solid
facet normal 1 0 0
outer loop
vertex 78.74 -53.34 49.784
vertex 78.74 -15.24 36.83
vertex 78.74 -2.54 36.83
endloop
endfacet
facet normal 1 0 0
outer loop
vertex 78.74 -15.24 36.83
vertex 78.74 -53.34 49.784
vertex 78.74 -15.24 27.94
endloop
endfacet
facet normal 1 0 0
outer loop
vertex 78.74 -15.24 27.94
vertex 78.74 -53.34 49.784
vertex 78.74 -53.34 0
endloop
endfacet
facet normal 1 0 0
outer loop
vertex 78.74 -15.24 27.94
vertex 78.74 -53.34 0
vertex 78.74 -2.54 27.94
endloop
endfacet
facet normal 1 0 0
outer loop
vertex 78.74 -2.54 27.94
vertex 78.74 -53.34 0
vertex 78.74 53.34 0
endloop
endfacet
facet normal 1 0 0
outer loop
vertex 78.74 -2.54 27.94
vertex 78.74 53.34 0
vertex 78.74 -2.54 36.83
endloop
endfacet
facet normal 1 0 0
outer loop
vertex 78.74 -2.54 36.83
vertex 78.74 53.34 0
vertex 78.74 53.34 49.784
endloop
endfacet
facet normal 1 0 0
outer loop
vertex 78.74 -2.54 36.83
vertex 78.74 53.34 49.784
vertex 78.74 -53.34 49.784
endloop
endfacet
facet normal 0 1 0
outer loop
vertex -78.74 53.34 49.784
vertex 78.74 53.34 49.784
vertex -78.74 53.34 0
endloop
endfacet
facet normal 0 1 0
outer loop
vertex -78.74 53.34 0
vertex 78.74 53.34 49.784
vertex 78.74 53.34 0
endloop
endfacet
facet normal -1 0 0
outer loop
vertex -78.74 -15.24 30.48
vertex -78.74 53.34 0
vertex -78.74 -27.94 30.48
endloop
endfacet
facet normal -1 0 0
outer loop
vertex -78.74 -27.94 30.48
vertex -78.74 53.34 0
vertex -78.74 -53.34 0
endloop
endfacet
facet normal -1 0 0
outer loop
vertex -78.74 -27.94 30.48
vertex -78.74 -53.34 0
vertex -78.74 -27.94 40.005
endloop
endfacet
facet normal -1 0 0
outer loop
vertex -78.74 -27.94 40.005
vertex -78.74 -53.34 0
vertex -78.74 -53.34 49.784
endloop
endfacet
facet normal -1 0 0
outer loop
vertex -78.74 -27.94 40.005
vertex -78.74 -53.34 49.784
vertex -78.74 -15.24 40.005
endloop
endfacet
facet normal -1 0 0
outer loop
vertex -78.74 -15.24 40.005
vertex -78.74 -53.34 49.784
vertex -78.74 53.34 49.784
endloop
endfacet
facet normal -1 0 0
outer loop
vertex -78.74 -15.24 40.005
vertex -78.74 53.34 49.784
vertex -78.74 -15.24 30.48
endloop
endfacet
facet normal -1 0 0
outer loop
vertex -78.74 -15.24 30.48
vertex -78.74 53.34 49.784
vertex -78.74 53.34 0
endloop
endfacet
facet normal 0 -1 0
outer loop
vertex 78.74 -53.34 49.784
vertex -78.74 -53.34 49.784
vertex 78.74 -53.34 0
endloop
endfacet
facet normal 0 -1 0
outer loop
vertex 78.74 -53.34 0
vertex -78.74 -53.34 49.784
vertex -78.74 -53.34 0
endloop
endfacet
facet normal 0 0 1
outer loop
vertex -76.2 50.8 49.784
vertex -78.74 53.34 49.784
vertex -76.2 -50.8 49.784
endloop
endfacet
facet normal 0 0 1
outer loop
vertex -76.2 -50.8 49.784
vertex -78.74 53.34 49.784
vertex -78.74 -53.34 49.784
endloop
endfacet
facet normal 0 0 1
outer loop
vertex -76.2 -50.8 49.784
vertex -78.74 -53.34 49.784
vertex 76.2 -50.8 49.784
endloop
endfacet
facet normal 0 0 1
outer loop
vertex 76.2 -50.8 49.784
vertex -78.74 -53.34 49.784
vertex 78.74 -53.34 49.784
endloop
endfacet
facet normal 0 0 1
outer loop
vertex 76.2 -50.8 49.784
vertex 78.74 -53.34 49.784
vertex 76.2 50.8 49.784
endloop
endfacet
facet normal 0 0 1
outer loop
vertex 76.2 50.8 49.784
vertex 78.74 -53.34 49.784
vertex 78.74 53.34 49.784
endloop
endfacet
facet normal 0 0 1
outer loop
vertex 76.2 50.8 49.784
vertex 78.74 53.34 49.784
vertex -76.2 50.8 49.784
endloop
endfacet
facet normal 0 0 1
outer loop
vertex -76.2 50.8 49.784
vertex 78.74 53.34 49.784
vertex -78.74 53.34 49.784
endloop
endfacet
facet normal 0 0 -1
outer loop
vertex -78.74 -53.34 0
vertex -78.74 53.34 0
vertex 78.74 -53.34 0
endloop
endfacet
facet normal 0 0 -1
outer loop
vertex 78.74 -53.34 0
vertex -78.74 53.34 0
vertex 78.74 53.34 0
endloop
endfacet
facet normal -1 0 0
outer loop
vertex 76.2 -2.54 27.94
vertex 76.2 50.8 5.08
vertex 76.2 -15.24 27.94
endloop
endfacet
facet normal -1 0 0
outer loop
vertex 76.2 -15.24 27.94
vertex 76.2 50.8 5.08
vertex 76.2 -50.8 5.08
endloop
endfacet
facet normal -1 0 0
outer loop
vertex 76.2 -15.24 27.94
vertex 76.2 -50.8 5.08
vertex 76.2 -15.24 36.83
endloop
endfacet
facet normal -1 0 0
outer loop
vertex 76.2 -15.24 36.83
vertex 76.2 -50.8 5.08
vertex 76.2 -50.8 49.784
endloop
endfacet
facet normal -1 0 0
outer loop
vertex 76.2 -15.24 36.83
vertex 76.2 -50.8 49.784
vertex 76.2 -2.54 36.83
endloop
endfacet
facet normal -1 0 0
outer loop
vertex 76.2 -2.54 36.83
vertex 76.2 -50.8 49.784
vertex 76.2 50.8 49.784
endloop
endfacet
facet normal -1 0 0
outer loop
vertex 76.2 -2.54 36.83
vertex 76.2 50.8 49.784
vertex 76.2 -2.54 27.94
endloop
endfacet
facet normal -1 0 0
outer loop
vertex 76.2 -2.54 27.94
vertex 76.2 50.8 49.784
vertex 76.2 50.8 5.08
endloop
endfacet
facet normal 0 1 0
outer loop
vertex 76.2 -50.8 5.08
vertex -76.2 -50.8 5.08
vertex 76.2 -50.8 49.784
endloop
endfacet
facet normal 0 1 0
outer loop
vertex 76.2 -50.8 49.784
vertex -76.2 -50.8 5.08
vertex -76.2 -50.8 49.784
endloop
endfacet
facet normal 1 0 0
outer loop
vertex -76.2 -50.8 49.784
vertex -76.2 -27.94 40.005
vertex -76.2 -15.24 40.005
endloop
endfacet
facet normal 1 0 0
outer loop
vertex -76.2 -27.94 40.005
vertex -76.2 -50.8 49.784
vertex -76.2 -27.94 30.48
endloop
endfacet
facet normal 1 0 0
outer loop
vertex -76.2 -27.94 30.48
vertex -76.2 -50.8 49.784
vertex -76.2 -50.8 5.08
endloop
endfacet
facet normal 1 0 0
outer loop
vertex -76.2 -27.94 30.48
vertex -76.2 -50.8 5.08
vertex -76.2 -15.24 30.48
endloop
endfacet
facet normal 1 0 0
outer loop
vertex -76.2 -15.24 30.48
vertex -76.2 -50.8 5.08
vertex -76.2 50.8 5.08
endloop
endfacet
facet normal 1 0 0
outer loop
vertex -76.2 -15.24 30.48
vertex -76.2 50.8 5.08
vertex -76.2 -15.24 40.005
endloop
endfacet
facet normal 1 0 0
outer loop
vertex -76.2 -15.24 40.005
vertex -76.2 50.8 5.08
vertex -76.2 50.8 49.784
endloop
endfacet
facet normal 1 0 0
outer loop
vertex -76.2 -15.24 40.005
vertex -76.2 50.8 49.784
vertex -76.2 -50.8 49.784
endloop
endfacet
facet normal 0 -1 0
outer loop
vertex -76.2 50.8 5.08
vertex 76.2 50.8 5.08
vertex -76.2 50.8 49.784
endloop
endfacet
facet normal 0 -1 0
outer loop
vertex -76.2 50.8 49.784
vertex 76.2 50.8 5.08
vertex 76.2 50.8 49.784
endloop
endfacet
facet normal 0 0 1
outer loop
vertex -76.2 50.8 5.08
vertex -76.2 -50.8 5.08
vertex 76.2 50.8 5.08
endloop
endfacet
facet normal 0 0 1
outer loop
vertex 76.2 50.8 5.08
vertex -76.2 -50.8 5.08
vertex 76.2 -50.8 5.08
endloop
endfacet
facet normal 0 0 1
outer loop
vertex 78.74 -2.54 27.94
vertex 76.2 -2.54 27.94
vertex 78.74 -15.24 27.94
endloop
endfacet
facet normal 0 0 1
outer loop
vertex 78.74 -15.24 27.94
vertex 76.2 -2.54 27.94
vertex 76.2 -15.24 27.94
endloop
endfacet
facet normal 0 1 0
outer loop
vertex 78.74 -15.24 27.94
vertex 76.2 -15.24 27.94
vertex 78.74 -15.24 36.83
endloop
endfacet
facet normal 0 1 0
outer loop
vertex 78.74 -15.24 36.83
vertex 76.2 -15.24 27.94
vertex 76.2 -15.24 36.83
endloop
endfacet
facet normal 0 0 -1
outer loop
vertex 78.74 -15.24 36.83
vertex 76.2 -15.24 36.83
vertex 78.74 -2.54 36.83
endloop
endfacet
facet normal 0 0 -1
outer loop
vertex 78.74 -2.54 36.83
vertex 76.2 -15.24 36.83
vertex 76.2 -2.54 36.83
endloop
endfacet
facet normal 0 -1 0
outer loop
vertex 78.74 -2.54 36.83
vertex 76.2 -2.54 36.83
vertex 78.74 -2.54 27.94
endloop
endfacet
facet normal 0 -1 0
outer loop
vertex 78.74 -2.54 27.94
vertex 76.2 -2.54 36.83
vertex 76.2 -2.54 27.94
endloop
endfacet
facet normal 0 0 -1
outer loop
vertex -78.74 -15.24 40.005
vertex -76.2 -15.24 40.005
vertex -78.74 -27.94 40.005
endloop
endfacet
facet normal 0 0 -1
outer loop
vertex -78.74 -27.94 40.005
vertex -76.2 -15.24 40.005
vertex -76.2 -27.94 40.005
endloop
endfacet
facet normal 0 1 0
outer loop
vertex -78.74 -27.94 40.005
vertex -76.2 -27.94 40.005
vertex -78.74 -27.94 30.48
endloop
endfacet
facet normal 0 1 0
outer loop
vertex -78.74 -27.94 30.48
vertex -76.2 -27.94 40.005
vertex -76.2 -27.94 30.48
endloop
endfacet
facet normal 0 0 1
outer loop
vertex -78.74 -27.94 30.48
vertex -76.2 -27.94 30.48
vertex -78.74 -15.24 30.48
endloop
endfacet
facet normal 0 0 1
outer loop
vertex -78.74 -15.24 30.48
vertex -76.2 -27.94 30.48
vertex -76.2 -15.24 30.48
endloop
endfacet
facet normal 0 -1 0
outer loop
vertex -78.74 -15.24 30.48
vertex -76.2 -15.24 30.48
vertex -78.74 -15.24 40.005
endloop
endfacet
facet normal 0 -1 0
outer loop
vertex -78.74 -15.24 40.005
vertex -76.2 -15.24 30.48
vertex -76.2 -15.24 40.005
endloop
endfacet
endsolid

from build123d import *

# Parameters (mm, degrees)
SKETCH1_W           = 157.48
SKETCH1_H           = 106.68
BOSS_EXTRUDE1_DEPTH = 49.784
SKETCH3_W           = 152.4
SKETCH3_H           = 101.6
CUT_EXTRUDE1_DEPTH  = 44.704
SKETCH4_W           = 8.89
SKETCH4_H           = 12.7
CUT_EXTRUDE2_DEPTH  = 43.18
SKETCH6_W           = 9.525
SKETCH6_H           = 12.7
CUT_EXTRUDE3_DEPTH  = 43.18


with BuildPart() as part:
    # Sketch1 → Boss-Extrude1 (new body)
    with BuildSketch(Plane.XY):
        Rectangle(SKETCH1_W, SKETCH1_H)
    extrude(amount=BOSS_EXTRUDE1_DEPTH)

    # Sketch3 → Cut-Extrude1 (cut)
    with BuildSketch(Plane.XY.offset(49.784)):
        Rectangle(SKETCH3_W, SKETCH3_H)
    extrude(amount=-CUT_EXTRUDE1_DEPTH, mode=Mode.SUBTRACT)

    # Sketch4 → Cut-Extrude2 (cut)
    with BuildSketch(Plane(origin=(78.74, 0, 0), x_dir=(0, 0, -1), z_dir=(1, 0, 0))):
        with Locations((-32.385, -8.89)):
            Rectangle(SKETCH4_W, SKETCH4_H)
    extrude(amount=-CUT_EXTRUDE2_DEPTH, mode=Mode.SUBTRACT)

    # Sketch6 → Cut-Extrude3 (cut)
    with BuildSketch(Plane.ZY.offset(78.74)):
        with Locations((35.2425, -21.59)):
            Rectangle(SKETCH6_W, SKETCH6_H)
    extrude(amount=-CUT_EXTRUDE3_DEPTH, mode=Mode.SUBTRACT)


solid = part.part
